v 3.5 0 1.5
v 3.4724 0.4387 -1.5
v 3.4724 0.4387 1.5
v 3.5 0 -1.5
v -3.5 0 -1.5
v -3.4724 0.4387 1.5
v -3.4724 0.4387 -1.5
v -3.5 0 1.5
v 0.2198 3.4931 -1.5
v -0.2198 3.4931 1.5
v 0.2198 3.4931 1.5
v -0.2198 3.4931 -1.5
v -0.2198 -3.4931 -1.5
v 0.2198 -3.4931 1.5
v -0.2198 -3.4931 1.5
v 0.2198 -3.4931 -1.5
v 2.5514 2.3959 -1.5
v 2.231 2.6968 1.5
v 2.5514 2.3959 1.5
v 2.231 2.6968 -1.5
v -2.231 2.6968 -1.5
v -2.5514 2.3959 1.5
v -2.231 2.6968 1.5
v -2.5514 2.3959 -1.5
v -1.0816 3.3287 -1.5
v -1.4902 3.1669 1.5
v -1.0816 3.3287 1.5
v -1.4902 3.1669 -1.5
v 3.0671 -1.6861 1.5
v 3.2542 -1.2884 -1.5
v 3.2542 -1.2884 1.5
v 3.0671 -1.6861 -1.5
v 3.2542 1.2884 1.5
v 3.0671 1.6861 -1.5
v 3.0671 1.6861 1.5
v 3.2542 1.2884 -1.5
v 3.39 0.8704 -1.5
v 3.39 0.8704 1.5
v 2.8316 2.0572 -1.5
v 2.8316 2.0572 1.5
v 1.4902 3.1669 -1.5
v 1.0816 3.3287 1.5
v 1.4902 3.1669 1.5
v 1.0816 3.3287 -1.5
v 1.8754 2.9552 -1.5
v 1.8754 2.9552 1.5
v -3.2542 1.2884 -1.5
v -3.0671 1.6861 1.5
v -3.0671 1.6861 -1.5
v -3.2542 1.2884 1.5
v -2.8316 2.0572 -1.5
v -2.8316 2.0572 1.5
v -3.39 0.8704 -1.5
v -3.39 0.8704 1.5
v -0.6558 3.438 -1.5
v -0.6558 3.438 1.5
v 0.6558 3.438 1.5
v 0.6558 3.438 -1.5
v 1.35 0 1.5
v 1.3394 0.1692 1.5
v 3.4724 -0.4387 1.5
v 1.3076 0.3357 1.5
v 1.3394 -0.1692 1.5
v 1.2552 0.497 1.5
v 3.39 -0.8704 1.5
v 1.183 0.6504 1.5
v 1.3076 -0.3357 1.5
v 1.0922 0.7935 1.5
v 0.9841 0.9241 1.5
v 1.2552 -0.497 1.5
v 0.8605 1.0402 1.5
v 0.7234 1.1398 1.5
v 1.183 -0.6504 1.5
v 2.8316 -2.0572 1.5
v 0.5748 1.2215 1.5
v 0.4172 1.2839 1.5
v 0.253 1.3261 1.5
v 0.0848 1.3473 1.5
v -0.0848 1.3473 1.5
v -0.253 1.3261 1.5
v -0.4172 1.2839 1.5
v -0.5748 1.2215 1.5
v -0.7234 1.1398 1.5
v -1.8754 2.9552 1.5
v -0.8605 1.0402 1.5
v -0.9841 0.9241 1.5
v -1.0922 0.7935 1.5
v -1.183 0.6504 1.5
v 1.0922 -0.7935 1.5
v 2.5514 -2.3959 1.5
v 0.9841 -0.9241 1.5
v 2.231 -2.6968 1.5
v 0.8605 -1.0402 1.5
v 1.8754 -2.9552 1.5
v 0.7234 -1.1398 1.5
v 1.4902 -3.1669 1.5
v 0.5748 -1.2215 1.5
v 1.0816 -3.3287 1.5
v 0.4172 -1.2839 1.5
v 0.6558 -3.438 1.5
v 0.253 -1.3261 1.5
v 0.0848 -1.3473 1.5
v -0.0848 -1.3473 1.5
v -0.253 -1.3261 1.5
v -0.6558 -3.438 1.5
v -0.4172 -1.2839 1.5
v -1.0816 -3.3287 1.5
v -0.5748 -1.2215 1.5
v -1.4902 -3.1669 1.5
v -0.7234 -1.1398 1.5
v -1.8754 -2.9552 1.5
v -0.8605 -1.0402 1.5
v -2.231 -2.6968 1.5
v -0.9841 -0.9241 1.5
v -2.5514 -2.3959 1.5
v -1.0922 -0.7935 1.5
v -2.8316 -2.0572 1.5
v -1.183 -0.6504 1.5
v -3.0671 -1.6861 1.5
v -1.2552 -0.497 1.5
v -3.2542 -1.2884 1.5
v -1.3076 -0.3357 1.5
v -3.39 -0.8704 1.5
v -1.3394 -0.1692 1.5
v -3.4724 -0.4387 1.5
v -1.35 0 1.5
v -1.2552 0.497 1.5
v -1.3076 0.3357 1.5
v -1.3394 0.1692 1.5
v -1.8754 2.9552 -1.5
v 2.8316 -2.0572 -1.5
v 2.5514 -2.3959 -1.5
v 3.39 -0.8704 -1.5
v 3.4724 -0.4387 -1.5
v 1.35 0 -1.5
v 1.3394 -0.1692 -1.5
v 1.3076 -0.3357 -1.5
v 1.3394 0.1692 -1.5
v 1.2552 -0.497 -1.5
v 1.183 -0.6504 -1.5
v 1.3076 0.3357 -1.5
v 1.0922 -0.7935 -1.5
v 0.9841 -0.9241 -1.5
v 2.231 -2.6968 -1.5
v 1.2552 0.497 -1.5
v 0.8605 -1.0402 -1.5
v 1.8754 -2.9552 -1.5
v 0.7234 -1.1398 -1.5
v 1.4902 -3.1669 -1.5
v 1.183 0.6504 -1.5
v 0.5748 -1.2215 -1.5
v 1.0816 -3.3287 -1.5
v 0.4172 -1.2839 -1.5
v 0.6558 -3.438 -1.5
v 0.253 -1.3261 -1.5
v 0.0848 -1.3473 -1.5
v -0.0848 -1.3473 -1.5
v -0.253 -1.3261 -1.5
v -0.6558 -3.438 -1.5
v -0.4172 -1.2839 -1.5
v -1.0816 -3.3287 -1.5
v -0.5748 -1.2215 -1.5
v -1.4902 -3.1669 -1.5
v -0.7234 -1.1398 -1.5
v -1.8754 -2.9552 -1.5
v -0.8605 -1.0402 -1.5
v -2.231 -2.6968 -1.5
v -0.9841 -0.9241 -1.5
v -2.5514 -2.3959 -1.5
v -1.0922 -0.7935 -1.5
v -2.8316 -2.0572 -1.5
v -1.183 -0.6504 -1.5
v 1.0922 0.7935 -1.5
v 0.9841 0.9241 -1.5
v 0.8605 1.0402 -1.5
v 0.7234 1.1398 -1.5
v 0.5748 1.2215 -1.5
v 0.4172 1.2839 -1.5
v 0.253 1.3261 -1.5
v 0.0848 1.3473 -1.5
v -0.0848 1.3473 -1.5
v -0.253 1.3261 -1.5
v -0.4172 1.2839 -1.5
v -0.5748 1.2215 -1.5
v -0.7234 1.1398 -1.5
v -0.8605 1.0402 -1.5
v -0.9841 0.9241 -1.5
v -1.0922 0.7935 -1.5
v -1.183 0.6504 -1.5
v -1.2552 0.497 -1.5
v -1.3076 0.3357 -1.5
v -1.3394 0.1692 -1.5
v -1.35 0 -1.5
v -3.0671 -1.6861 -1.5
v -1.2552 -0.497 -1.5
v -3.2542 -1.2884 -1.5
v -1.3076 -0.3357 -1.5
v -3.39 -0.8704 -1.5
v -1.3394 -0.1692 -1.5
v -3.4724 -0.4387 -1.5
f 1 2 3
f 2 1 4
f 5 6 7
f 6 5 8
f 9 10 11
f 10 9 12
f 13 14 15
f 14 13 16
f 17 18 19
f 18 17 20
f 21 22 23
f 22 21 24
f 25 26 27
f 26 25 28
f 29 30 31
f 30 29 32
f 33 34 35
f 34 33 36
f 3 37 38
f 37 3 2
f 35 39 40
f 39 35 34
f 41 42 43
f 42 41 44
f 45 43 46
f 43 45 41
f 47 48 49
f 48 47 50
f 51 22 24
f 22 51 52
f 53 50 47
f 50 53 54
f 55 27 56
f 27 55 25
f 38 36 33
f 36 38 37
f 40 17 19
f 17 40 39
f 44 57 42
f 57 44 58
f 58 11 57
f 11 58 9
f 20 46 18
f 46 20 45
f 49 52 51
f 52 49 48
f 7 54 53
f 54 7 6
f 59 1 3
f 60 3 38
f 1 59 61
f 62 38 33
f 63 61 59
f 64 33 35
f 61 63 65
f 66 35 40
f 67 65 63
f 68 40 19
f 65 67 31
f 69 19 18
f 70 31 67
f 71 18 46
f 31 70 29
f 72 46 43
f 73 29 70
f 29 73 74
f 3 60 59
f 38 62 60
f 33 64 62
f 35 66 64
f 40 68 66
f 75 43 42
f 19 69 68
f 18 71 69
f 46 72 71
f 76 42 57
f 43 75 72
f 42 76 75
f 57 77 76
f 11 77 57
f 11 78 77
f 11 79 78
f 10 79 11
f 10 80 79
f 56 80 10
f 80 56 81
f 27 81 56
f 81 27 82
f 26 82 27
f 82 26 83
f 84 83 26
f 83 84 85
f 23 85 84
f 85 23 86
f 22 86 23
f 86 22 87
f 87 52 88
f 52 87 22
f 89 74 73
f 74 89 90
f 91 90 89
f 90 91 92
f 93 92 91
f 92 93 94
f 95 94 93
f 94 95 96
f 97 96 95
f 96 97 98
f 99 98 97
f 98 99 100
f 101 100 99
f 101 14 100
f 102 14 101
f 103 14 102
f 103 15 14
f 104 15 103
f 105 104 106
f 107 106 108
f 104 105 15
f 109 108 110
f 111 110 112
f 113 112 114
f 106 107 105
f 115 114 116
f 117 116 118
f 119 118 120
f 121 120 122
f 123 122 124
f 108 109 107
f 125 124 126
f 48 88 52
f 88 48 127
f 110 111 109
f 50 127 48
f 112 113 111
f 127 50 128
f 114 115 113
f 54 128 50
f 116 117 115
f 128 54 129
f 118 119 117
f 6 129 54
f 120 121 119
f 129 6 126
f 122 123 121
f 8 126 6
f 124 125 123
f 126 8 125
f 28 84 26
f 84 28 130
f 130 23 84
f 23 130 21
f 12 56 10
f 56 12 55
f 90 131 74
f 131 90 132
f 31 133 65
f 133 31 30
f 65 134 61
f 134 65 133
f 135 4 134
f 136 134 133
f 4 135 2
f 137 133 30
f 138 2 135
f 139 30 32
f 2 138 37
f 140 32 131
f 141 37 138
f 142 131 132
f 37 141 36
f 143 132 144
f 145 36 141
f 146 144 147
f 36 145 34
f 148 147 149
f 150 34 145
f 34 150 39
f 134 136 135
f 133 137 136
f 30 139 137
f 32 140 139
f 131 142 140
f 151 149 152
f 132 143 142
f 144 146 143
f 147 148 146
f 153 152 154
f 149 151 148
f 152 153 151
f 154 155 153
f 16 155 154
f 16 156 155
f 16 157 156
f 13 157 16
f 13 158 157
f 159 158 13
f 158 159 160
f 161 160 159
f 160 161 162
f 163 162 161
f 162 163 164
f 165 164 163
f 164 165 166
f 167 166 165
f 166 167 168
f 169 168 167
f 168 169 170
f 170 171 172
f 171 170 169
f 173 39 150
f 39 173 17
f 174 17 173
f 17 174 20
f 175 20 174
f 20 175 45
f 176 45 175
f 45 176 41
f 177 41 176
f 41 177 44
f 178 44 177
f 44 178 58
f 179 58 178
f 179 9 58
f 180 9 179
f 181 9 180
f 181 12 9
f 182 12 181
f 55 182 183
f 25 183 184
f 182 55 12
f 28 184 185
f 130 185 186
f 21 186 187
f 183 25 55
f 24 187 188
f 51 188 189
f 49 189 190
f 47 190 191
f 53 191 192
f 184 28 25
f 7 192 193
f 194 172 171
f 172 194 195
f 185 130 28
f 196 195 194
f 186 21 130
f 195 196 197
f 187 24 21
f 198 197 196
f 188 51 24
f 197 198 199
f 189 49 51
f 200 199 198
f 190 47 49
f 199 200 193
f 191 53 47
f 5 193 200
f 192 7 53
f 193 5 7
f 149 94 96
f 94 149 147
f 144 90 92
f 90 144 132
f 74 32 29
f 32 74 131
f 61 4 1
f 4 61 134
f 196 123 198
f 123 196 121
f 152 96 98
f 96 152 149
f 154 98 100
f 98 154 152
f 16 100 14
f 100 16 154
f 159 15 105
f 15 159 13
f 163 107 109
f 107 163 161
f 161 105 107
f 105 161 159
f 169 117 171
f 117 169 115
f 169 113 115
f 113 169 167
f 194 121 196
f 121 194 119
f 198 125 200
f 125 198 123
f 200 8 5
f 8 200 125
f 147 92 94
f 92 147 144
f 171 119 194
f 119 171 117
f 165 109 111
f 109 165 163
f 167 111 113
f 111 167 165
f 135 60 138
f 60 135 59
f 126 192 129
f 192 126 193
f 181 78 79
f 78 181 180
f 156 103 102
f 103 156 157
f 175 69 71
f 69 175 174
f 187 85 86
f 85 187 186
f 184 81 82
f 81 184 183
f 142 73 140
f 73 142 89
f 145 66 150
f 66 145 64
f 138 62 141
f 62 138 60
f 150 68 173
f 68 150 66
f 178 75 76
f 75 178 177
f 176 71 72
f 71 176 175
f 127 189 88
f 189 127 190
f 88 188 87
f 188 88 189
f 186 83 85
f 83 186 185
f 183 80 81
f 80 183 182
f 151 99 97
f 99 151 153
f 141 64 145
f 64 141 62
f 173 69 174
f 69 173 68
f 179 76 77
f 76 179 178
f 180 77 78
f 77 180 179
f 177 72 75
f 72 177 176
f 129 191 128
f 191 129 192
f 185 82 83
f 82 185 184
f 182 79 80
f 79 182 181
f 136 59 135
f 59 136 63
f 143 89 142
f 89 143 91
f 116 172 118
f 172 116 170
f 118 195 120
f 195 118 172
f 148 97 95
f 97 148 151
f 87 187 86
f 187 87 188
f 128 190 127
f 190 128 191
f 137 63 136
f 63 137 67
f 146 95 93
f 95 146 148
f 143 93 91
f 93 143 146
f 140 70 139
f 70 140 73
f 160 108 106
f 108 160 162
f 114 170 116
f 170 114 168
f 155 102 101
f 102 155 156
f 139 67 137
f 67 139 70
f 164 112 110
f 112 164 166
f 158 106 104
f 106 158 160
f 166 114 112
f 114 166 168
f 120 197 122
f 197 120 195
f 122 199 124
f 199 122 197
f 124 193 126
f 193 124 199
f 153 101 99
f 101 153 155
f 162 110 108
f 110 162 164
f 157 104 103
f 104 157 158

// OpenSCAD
$fn = 50;


difference() {
	union() {
		translate(v = [0, 0, -1.5000000000]) {
			cylinder(h = 3, r = 3.5000000000);
		}
	}
	union() {
		translate(v = [0, 0, -100.0000000000]) {
			cylinder(h = 200, r = 1.3500000000);
		}
	}
}
